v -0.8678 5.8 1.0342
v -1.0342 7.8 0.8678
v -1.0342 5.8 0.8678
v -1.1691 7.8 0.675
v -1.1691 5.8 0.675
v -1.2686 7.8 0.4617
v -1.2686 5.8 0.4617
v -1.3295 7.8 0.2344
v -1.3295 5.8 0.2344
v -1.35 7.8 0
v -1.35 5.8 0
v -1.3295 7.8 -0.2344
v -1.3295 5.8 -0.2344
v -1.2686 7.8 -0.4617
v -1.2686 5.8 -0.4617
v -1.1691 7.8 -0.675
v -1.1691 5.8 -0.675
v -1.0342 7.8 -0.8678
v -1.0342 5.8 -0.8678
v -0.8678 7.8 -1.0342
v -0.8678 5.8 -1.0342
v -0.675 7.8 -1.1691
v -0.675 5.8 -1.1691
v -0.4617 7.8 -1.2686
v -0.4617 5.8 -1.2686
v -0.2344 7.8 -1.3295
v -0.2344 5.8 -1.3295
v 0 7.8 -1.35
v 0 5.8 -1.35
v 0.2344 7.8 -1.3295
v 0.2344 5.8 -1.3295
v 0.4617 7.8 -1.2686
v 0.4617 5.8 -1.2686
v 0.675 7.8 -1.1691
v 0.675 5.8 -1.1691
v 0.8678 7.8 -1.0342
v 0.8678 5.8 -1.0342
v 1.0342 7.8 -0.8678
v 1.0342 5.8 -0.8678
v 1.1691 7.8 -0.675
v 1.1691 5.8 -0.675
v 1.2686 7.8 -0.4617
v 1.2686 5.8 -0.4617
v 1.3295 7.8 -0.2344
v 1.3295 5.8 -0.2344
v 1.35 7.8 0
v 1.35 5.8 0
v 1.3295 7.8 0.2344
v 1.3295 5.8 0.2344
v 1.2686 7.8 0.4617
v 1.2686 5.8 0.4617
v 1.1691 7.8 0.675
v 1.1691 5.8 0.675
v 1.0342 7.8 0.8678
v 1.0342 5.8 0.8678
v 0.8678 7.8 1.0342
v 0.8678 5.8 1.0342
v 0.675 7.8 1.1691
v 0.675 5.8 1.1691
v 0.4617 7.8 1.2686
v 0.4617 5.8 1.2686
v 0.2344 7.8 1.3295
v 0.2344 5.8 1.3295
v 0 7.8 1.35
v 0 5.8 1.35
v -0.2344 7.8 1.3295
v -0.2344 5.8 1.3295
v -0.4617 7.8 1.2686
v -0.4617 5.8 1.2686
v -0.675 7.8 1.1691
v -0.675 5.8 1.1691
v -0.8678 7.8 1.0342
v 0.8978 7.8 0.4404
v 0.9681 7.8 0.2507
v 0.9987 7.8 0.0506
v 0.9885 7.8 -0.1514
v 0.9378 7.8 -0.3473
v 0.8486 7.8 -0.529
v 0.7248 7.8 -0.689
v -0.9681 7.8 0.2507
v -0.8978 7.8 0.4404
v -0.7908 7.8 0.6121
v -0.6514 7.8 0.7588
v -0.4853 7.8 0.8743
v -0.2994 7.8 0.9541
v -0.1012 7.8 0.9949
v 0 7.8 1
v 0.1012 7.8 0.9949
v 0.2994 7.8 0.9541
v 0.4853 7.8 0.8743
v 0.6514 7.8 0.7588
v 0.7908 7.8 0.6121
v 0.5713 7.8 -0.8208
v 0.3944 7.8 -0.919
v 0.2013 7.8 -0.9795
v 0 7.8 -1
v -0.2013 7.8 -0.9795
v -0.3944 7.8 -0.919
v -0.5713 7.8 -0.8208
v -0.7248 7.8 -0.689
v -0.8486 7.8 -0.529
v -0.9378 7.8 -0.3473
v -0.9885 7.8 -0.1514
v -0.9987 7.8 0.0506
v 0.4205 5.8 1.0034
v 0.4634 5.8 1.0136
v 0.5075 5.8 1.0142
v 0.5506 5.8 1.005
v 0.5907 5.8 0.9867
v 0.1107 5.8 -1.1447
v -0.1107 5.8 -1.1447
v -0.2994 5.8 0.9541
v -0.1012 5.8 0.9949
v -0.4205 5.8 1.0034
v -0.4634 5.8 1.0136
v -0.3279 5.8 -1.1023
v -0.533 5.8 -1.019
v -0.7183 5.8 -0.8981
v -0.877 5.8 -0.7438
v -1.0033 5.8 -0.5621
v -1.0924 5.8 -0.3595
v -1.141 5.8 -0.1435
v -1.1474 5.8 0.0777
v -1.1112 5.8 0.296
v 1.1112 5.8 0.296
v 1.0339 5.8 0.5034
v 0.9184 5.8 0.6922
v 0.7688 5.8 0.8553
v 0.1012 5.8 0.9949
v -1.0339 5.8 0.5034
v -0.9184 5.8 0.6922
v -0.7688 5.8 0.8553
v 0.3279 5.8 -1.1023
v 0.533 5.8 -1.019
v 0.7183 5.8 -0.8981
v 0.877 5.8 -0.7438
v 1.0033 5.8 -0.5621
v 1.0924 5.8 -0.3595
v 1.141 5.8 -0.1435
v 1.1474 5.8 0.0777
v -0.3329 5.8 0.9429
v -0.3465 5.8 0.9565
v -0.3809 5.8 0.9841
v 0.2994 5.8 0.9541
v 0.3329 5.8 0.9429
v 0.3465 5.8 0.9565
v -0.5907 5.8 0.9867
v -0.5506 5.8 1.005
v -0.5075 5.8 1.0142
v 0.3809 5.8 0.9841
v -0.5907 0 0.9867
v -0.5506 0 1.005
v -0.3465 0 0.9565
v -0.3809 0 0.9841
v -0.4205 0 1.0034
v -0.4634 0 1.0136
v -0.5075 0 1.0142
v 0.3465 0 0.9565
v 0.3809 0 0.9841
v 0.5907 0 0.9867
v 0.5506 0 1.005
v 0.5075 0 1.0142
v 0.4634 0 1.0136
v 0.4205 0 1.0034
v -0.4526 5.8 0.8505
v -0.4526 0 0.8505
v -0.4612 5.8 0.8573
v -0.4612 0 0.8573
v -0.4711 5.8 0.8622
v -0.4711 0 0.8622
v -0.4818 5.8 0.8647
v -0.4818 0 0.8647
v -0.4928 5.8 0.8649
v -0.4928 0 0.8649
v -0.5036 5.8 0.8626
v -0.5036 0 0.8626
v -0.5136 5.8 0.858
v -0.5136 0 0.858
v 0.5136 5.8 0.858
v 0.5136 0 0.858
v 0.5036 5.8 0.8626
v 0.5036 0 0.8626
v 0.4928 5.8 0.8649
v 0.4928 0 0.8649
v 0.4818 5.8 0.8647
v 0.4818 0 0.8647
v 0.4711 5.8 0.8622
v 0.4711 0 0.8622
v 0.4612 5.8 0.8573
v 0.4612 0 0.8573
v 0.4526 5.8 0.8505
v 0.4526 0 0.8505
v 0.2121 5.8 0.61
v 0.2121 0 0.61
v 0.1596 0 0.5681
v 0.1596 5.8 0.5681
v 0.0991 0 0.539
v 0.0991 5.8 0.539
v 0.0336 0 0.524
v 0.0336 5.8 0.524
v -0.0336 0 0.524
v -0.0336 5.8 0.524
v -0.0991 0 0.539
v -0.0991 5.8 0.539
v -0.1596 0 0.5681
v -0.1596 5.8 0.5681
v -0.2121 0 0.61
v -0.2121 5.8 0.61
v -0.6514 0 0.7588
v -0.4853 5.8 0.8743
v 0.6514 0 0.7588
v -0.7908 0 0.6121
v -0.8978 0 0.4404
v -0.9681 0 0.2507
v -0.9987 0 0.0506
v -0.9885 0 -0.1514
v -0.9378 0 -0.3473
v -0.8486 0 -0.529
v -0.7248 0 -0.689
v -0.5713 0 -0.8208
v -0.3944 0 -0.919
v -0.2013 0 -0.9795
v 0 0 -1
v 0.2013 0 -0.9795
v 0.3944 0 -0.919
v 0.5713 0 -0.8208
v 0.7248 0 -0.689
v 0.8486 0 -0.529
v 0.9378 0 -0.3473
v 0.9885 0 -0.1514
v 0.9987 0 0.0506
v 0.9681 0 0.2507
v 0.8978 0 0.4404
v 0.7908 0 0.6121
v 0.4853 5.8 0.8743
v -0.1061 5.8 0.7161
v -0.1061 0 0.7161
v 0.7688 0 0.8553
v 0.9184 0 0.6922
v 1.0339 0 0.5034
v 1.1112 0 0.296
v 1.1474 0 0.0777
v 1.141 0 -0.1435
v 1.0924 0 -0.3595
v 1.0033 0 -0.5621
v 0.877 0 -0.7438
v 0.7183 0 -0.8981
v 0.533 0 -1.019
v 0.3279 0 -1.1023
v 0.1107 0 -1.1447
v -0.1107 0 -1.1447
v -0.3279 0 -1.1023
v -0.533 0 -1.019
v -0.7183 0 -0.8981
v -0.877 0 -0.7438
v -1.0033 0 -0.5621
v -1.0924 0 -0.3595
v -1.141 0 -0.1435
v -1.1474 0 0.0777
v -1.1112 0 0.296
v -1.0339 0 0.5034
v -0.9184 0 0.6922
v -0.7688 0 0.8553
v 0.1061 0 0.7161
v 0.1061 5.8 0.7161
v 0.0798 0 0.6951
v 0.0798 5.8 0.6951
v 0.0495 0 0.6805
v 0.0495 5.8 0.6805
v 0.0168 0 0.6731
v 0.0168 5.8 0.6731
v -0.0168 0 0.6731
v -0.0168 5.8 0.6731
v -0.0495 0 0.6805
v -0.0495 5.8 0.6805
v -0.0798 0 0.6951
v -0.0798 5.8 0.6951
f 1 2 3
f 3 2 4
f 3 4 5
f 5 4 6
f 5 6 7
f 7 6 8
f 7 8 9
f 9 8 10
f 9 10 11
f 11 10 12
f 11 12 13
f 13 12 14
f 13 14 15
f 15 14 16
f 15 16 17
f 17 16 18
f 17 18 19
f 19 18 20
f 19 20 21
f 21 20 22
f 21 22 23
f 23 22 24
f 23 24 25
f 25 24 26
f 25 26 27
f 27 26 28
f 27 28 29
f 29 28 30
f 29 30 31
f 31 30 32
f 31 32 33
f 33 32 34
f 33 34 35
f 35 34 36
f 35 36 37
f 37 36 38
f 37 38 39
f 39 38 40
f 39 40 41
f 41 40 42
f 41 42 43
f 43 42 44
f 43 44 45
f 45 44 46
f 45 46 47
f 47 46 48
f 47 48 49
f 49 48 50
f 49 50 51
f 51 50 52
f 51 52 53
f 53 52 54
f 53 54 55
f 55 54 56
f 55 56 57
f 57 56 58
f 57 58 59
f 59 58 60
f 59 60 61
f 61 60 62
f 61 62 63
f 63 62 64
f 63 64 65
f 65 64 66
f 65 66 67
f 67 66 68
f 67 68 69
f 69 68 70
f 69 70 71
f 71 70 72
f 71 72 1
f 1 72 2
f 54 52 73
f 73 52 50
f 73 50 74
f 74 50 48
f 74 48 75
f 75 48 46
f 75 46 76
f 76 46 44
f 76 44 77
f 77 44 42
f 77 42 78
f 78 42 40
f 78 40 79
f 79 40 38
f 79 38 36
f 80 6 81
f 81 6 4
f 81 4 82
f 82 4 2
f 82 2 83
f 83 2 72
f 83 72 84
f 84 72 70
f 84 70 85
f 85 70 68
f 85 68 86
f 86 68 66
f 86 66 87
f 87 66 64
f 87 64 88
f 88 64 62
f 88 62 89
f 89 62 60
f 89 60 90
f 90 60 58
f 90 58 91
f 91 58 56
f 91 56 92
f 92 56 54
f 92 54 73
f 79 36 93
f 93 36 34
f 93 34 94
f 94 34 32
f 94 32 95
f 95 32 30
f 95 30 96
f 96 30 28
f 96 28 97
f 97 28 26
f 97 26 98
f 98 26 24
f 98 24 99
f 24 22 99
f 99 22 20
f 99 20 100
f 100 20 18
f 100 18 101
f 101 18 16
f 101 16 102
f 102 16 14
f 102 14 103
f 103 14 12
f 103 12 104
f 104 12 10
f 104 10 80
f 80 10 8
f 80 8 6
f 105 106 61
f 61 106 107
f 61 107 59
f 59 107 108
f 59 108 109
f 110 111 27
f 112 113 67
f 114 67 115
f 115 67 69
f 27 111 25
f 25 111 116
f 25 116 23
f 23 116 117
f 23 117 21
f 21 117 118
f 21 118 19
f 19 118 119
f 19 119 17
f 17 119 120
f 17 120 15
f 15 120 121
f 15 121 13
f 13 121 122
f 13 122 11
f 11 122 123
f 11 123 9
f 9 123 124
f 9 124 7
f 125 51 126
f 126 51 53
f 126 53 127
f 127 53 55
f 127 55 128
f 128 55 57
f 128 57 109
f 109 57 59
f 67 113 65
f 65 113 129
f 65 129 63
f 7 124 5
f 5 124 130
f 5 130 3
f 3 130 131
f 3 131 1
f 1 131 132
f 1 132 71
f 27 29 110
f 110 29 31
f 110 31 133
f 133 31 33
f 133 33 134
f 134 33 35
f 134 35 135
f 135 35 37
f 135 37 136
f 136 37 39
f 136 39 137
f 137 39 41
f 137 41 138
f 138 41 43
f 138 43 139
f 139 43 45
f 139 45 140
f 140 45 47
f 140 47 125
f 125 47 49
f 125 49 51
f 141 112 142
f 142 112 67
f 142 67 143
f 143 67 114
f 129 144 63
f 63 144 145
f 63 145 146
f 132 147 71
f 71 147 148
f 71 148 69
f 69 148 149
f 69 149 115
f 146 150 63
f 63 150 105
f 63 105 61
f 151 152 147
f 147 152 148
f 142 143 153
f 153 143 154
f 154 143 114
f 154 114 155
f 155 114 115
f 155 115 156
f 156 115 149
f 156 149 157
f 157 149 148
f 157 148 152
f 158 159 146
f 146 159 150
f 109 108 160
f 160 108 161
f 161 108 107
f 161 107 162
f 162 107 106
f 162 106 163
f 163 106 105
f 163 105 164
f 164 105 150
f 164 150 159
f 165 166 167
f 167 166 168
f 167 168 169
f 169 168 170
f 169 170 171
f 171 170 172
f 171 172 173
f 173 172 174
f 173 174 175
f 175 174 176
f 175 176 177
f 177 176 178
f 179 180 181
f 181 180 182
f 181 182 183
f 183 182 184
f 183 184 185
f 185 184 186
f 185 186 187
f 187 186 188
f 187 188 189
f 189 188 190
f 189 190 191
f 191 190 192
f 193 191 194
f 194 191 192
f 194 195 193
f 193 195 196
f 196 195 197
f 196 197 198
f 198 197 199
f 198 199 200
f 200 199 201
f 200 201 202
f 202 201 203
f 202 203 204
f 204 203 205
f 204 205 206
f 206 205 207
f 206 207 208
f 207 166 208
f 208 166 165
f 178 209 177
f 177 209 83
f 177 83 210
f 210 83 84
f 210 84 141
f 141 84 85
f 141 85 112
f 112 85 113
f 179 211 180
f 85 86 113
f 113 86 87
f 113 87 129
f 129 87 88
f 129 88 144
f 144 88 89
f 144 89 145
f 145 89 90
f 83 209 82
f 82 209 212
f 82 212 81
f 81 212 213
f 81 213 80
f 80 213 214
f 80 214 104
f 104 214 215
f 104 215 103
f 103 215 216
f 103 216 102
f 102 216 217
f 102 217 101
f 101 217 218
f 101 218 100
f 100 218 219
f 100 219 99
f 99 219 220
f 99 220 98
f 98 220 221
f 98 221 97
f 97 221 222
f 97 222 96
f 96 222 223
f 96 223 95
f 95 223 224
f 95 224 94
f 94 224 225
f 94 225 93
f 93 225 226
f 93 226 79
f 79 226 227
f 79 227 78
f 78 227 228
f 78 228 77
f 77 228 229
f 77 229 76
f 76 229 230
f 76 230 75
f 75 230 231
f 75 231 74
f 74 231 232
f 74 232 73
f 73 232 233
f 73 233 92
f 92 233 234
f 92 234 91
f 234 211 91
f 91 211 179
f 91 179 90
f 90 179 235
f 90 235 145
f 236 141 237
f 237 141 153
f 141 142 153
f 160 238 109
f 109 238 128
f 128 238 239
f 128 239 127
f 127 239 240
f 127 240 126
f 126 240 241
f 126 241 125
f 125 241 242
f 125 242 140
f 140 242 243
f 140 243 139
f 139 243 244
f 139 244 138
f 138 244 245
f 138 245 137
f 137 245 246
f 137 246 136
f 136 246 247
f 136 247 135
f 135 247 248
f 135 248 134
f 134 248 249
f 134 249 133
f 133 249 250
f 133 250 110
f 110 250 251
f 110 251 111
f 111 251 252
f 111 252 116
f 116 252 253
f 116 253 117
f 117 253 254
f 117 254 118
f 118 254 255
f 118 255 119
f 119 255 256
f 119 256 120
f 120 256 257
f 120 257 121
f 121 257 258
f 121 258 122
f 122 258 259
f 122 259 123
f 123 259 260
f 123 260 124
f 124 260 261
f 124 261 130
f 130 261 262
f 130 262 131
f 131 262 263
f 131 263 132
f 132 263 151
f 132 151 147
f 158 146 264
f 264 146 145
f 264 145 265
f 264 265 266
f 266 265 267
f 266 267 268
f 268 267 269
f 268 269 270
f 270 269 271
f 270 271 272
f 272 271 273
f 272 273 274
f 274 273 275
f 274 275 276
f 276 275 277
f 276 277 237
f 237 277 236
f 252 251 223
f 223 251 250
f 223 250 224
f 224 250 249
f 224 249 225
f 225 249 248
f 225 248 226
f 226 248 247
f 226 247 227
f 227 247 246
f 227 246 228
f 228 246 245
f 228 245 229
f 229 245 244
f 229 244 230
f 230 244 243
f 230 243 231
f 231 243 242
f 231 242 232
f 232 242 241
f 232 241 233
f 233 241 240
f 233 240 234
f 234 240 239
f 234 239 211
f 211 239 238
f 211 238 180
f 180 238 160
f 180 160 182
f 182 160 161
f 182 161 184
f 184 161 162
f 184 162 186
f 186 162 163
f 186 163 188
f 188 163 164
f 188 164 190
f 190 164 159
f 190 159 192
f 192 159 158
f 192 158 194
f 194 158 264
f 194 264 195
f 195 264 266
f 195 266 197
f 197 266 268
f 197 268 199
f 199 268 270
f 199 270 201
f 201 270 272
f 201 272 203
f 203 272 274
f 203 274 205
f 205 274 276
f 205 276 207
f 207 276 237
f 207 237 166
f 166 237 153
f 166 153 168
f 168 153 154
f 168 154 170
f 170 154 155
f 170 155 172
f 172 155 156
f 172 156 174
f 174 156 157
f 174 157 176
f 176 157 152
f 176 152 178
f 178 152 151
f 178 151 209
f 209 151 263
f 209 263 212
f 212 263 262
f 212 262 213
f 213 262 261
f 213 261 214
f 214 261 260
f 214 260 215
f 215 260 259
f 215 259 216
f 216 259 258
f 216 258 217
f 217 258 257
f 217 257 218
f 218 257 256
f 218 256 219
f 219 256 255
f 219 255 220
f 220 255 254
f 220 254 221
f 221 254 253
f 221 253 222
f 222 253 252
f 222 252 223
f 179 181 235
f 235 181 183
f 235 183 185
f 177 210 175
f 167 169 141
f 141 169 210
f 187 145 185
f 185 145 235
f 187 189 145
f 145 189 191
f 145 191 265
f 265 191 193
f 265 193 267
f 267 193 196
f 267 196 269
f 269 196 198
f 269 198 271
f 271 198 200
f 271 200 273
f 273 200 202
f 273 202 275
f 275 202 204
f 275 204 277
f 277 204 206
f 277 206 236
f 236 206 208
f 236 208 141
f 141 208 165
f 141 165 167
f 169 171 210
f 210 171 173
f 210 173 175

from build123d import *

# Parameters (mm, degrees)
BOSS_EXTRUDE1_DEPTH = 5.8
FILLET1_R           = 0.05
FILLET2_R           = 0.2
SKETCH2_R           = 1.35
SKETCH2_R_2         = 1
BOSS_EXTRUDE2_DEPTH = 2


with BuildPart() as part:
    # Sketch1 → Boss-Extrude1 (new body)
    with BuildSketch(Plane(origin=(0, 0, 0), x_dir=(1, 0, 0), z_dir=(0, 1, 0))):
        with BuildLine():
            Line((-0.448807004, -1.058807004), (-0.106066017, -0.716066017))
            ThreePointArc((-0.106066017, -0.716066017), (0, -0.672132034), (0.106066017, -0.716066017))
            Line((0.106066017, -0.716066017), (0.448807004, -1.058807004))
            ThreePointArc((0.448807004, -1.058807004), (0, 1.15), (-0.448807004, -1.058807004))
        make_face()
        with BuildLine():
            Line((-0.479612457, -0.877480422), (-0.212132034, -0.61))
            ThreePointArc((-0.212132034, -0.61), (0, -0.522132034), (0.212132034, -0.61))
            Line((0.212132034, -0.61), (0.479612457, -0.877480422))
            ThreePointArc((0.479612457, -0.877480422), (0, 1), (-0.479612457, -0.877480422))
        make_face(mode=Mode.SUBTRACT)
    extrude(amount=BOSS_EXTRUDE1_DEPTH)

    # Fillet1
    fillet1_edges = [part.edges().sort_by_distance(p)[0] for p in [
        (0.479612457, 2.9, 0.877480422),
        (-0.479612457, 2.9, 0.877480422),
    ]]
    fillet(fillet1_edges, radius=FILLET1_R)

    # Fillet2
    fillet2_edges = [part.edges().sort_by_distance(p)[0] for p in [
        (-0.448807004, 2.9, 1.058807004),
        (0.448807004, 2.9, 1.058807004),
    ]]
    fillet(fillet2_edges, radius=FILLET2_R)

    # Sketch2 → Boss-Extrude2 (add)
    with BuildSketch(Plane(origin=(0, 5.8, 0), x_dir=(1, 0, 0), z_dir=(0, 1, 0))):
        Circle(SKETCH2_R)
        Circle(SKETCH2_R_2, mode=Mode.SUBTRACT)
    extrude(amount=BOSS_EXTRUDE2_DEPTH)


solid = part.part
